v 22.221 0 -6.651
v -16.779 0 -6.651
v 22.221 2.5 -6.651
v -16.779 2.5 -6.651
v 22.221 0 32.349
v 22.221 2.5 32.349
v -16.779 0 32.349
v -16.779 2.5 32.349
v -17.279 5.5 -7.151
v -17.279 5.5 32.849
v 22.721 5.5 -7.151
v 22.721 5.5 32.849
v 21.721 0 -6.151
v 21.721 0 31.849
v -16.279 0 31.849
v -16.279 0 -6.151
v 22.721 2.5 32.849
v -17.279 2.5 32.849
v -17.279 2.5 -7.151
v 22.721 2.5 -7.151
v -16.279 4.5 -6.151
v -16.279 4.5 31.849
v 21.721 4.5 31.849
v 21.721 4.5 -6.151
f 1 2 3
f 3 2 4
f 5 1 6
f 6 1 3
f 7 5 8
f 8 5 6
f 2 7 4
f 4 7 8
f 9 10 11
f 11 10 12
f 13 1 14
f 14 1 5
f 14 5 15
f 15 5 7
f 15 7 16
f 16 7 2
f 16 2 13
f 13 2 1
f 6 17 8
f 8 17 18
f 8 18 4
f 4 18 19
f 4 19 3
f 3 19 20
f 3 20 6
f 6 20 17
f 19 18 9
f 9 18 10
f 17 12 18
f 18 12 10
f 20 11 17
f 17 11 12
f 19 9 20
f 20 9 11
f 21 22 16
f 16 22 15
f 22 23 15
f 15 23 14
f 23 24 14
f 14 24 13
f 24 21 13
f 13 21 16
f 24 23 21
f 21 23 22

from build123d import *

# Parameters (mm, degrees)
SKETCH_1_W          = 39
SKETCH_1_H          = 39
EXTRUDE_1_DEPTH     = 5.5
SKETCH_2_W          = 39
SKETCH_2_H          = 3
EXTRUDE_2_DEPTH     = 0.5
SKETCH_3_W          = 39.5
SKETCH_3_H          = 3
EXTRUDE_3_DEPTH     = 0.5
SKETCH_5_W          = 39.5
SKETCH_5_H          = 3
EXTRUDE_4_DEPTH     = 0.5
SKETCH_6_W          = 40
SKETCH_6_H          = 3
EXTRUDE_5_DEPTH     = 0.5
SKETCH_7_W          = 38
SKETCH_7_H          = 38
CUT_EXTRUDE_1_DEPTH = 4.5


with BuildPart() as part:
    # Эскиз1 → Бобышка-Вытянуть1 (new body)
    with BuildSketch(Plane(origin=(0, 0, 0), x_dir=(1, 0, 0), z_dir=(0, 1, 0))):
        with Locations((2.720930233, -12.848837209)):
            Rectangle(SKETCH_1_W, SKETCH_1_H)
    extrude(amount=EXTRUDE_1_DEPTH)

    # Эскиз2 → Бобышка-Вытянуть2 (add)
    with BuildSketch(Plane.ZY.offset(16.779069767)):
        with Locations((12.848837209, 4)):
            Rectangle(SKETCH_2_W, SKETCH_2_H)
    extrude(amount=EXTRUDE_2_DEPTH)

    # Эскиз3 → Бобышка-Вытянуть3 (add)
    with BuildSketch(Plane.XY.offset(32.348837209)):
        with Locations((2.470930233, 4)):
            Rectangle(SKETCH_3_W, SKETCH_3_H)
    extrude(amount=EXTRUDE_3_DEPTH)

    # Эскиз5 → Бобышка-Вытянуть4 (add)
    with BuildSketch(Plane(origin=(22.220930233, 0, 0), x_dir=(0, 0, -1), z_dir=(1, 0, 0))):
        with Locations((-13.098837209, 4)):
            Rectangle(SKETCH_5_W, SKETCH_5_H)
    extrude(amount=EXTRUDE_4_DEPTH)

    # Эскиз6 → Бобышка-Вытянуть5 (add)
    with BuildSketch(Plane(origin=(0, 0, -6.651162791), x_dir=(-1, 0, 0), z_dir=(0, 0, -1))):
        with Locations((-2.720930233, 4)):
            Rectangle(SKETCH_6_W, SKETCH_6_H)
    extrude(amount=EXTRUDE_5_DEPTH)

    # Эскиз7 → Вырез-Вытянуть1 (cut)
    with BuildSketch(Plane.XZ):
        with Locations((2.720930233, 12.848837209)):
            Rectangle(SKETCH_7_W, SKETCH_7_H)
    extrude(amount=-CUT_EXTRUDE_1_DEPTH, mode=Mode.SUBTRACT)


solid = part.part
